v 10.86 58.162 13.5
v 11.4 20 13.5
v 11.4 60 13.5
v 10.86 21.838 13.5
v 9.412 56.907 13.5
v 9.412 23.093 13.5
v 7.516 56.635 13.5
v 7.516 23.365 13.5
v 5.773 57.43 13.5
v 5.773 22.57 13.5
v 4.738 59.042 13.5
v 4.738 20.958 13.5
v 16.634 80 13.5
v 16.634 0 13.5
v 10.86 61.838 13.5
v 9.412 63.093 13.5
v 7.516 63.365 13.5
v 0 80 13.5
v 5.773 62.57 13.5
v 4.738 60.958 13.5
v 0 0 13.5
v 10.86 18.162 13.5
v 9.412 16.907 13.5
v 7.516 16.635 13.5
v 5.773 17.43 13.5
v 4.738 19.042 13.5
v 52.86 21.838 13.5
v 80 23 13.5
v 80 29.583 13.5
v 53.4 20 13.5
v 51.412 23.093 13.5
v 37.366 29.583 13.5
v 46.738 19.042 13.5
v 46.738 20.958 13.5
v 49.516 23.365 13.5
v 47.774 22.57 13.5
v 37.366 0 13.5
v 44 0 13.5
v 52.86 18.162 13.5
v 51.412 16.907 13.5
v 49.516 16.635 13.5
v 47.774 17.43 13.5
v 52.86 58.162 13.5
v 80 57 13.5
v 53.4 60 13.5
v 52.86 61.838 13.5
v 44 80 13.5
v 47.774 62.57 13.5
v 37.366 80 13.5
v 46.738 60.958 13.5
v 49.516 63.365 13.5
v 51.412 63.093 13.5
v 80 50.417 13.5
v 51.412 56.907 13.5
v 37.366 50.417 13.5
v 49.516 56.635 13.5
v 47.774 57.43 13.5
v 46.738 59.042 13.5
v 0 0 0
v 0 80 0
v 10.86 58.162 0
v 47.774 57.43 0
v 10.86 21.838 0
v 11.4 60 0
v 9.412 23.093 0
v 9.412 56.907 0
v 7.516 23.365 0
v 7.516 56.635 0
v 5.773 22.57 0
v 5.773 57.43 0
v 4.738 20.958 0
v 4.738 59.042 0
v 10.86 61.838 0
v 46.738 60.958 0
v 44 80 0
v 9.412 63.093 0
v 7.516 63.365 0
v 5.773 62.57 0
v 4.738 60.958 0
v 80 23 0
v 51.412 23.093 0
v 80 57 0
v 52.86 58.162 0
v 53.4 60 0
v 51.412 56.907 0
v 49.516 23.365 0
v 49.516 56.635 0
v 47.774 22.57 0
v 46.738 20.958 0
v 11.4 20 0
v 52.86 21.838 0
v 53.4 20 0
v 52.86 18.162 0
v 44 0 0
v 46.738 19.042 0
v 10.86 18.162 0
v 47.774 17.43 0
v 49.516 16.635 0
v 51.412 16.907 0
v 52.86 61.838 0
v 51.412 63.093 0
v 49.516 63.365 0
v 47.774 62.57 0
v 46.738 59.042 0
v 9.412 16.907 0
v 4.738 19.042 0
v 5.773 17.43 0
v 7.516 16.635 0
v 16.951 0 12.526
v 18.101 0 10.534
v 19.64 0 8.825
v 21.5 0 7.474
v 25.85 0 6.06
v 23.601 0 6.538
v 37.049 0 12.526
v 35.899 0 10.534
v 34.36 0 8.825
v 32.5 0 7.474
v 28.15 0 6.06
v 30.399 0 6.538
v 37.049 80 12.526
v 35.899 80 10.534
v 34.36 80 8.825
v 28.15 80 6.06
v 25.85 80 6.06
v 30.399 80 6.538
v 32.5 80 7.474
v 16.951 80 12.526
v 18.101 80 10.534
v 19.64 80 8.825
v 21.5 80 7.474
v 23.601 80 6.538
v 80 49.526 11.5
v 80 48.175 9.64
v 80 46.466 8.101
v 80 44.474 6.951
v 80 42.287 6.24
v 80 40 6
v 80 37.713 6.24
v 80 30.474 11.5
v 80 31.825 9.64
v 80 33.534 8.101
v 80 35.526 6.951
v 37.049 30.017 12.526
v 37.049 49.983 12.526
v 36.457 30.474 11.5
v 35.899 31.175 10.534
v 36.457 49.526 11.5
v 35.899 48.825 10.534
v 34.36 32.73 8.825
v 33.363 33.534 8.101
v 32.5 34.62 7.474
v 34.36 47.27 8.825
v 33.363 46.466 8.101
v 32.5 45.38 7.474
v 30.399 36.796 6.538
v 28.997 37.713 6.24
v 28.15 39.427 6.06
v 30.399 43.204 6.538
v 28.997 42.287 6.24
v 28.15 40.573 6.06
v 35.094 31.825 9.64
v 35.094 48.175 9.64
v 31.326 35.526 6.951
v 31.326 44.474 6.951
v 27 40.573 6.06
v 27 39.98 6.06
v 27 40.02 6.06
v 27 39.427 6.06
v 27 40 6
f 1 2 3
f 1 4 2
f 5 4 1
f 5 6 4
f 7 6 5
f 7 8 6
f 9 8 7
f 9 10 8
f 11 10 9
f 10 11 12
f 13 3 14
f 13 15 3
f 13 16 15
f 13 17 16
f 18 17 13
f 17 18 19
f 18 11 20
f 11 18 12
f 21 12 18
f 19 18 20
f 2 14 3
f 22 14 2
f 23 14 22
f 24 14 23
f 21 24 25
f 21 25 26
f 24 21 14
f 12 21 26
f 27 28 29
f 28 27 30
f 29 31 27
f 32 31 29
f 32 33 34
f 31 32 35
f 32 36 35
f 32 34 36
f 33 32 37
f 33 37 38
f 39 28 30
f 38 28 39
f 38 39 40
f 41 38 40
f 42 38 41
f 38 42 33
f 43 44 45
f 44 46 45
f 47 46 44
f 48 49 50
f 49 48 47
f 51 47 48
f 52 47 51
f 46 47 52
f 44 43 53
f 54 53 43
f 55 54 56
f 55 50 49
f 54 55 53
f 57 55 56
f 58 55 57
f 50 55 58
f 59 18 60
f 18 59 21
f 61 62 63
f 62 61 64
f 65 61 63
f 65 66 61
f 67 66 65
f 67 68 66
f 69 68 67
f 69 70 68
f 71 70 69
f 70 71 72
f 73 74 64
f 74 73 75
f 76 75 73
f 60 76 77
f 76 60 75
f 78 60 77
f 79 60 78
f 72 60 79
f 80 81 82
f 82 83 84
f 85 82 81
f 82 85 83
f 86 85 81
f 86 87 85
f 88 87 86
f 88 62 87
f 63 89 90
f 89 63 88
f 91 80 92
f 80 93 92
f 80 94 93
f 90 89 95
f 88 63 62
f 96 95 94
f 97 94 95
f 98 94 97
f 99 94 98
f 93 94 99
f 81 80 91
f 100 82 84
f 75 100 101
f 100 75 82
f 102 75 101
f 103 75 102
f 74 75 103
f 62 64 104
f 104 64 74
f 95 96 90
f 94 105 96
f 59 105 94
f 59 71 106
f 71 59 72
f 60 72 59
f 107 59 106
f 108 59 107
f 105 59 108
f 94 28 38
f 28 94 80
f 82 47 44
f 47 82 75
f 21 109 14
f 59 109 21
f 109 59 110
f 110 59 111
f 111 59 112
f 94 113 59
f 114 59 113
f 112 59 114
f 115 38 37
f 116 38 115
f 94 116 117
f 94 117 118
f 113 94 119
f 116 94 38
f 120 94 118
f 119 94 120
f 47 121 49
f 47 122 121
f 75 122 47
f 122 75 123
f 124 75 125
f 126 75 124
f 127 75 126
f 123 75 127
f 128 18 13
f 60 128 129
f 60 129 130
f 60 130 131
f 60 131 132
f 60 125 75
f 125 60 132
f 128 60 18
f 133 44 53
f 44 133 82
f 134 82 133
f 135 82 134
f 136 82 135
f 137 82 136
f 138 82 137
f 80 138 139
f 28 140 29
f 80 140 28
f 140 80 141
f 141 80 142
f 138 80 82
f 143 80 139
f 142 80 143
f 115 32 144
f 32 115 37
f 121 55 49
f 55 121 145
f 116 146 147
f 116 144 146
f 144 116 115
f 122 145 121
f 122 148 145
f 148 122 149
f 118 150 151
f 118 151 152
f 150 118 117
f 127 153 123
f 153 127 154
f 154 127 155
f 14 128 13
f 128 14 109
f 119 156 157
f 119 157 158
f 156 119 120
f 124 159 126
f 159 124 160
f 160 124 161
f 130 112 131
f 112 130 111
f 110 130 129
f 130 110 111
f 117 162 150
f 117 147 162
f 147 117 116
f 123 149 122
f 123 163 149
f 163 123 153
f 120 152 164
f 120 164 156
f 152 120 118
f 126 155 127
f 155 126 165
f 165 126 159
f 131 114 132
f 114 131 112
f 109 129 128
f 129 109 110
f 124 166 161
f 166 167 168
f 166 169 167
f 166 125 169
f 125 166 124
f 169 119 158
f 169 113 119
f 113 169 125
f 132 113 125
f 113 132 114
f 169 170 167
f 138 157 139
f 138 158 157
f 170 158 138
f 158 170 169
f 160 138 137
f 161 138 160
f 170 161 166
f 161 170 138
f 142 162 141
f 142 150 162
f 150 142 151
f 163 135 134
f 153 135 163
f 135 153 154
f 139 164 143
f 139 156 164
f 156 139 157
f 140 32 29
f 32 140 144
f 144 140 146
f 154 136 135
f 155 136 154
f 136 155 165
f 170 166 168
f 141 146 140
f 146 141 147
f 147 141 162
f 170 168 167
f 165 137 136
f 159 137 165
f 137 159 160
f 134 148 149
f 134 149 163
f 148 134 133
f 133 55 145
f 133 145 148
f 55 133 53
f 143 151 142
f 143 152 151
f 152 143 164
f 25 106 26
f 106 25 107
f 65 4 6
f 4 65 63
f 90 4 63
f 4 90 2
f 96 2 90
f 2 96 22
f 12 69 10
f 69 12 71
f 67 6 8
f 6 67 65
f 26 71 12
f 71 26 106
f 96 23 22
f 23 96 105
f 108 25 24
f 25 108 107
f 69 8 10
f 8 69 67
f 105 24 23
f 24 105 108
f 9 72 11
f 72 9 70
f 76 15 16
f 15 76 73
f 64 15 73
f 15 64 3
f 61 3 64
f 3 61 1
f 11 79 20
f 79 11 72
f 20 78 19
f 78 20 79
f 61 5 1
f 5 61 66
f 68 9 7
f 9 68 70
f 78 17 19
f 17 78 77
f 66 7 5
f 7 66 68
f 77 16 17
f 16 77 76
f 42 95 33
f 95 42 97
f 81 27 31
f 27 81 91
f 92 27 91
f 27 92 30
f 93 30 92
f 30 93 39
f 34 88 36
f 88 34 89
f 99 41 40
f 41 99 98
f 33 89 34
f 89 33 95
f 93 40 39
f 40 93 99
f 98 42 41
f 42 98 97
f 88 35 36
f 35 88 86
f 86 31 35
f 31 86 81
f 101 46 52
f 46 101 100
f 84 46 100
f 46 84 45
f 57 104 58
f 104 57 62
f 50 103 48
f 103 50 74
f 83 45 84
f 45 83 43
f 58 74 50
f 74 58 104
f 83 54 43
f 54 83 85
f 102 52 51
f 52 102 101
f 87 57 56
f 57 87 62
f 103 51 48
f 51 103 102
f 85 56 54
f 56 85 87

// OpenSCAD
// Height: The y axis
// Length: The x axis
// Width: The z axis


// Connector height in mm
ConnectorHeight=80;

// Connector length in mm
ConnectorLength=80;

// The pipe diameter in mm
PipeDiameter=22;

// The extra material around the pipe.
// Measure this on one side.
ThicknessAroundPipe = 6;

// Screw offset in mm
// This is the part near the edge where the screws go
ScrewOffset = 10;

// Screw diameter in mm
ScrewDiameter = 6.8;

// Gap between the 2 pieces
GapBetweenPieces = 7;

//// Calculated
ConnectorWidth = PipeDiameter + ThicknessAroundPipe * 2;
RemovedTopHeight = ConnectorWidth * (ConnectorLength - ConnectorWidth - ScrewOffset) / (ConnectorHeight - ConnectorWidth);
TriangleLengthBeforeCuts = ConnectorLength + RemovedTopHeight;

// How much in 'y' to move to get a square cut
CutHeight = ((ConnectorWidth+ScrewOffset) * ConnectorHeight) / (2 * (ConnectorLength + RemovedTopHeight - (ConnectorWidth+ScrewOffset)));
TriangleHeightBeforeCuts = ConnectorHeight + 2*CutHeight;

FirstCutY = CutHeight;
SecondCutY = TriangleHeightBeforeCuts - FirstCutY;

module Connector() {
  difference() {
    // Basic triangle
    linear_extrude(height = ConnectorWidth, convexity = 10, twist = 0)
    polygon(points=[[0,0], [0, TriangleHeightBeforeCuts], [TriangleLengthBeforeCuts, TriangleHeightBeforeCuts/2]]);

    // Cut the edges so we get a square face (plus the screw offset)
    cube([TriangleLengthBeforeCuts, FirstCutY, ConnectorWidth]);

    translate([0, SecondCutY, 0])
    cube([TriangleLengthBeforeCuts, ConnectorHeight, ConnectorWidth]);

    // Cut also the top of the triangle (far "x" side)
    x = ConnectorLength;
    translate([x, TriangleHeightBeforeCuts/2 - ConnectorWidth / 2, 0])
    cube([TriangleLengthBeforeCuts, ConnectorWidth, ConnectorWidth]);

    // Drill holes for the pipes
    Pipe1();
    Pipe2();

    // Drill holes for the screws
    translate([(ScrewOffset+ThicknessAroundPipe)/2, FirstCutY + ConnectorHeight/4,0])
    cylinder(h=ConnectorWidth,d=ScrewDiameter);

    translate([(ScrewOffset+ThicknessAroundPipe)/2, FirstCutY + 3*ConnectorHeight/4,0])
    cylinder(h=ConnectorWidth,d=ScrewDiameter);

    // Play with the next 2 to move the holes close to the edge
    translate([ScrewOffset+ThicknessAroundPipe*3+PipeDiameter, FirstCutY + ConnectorHeight/4,0])
    cylinder(h=ConnectorWidth,d=ScrewDiameter);

    translate([ScrewOffset+ThicknessAroundPipe*3+PipeDiameter, FirstCutY + 3*ConnectorHeight/4,0])
    cylinder(h=ConnectorWidth,d=ScrewDiameter);

    // Create the gap between pieces and remove the top part
    translate([0, 0, ConnectorWidth/2 - GapBetweenPieces/2]) {
      cube([ConnectorLength * 2, ConnectorHeight * 2, GapBetweenPieces]);
      // Delete the top part
      cube([ConnectorLength * 2, ConnectorHeight * 2, GapBetweenPieces + ConnectorWidth]);
    }
  }
}

module Pipe1() {
  translate([PipeDiameter/2 + ScrewOffset + ThicknessAroundPipe,0,PipeDiameter/2 + ThicknessAroundPipe]) {
    rotate([-90,0,0])
    cylinder(h=TriangleHeightBeforeCuts, r=PipeDiameter/2);
  }
}

module Pipe2() {
  translate([PipeDiameter/2 + ScrewOffset + ThicknessAroundPipe, TriangleHeightBeforeCuts/2,PipeDiameter/2 + ThicknessAroundPipe]) {
    rotate([0,90,0])
    cylinder(h=TriangleHeightBeforeCuts, r=PipeDiameter/2);
  }
}

translate([0,-CutHeight,0]) {
  Connector();
//  Pipe1(); // Show the pipe #1
//  Pipe2(); // Show the pipe #2
}
